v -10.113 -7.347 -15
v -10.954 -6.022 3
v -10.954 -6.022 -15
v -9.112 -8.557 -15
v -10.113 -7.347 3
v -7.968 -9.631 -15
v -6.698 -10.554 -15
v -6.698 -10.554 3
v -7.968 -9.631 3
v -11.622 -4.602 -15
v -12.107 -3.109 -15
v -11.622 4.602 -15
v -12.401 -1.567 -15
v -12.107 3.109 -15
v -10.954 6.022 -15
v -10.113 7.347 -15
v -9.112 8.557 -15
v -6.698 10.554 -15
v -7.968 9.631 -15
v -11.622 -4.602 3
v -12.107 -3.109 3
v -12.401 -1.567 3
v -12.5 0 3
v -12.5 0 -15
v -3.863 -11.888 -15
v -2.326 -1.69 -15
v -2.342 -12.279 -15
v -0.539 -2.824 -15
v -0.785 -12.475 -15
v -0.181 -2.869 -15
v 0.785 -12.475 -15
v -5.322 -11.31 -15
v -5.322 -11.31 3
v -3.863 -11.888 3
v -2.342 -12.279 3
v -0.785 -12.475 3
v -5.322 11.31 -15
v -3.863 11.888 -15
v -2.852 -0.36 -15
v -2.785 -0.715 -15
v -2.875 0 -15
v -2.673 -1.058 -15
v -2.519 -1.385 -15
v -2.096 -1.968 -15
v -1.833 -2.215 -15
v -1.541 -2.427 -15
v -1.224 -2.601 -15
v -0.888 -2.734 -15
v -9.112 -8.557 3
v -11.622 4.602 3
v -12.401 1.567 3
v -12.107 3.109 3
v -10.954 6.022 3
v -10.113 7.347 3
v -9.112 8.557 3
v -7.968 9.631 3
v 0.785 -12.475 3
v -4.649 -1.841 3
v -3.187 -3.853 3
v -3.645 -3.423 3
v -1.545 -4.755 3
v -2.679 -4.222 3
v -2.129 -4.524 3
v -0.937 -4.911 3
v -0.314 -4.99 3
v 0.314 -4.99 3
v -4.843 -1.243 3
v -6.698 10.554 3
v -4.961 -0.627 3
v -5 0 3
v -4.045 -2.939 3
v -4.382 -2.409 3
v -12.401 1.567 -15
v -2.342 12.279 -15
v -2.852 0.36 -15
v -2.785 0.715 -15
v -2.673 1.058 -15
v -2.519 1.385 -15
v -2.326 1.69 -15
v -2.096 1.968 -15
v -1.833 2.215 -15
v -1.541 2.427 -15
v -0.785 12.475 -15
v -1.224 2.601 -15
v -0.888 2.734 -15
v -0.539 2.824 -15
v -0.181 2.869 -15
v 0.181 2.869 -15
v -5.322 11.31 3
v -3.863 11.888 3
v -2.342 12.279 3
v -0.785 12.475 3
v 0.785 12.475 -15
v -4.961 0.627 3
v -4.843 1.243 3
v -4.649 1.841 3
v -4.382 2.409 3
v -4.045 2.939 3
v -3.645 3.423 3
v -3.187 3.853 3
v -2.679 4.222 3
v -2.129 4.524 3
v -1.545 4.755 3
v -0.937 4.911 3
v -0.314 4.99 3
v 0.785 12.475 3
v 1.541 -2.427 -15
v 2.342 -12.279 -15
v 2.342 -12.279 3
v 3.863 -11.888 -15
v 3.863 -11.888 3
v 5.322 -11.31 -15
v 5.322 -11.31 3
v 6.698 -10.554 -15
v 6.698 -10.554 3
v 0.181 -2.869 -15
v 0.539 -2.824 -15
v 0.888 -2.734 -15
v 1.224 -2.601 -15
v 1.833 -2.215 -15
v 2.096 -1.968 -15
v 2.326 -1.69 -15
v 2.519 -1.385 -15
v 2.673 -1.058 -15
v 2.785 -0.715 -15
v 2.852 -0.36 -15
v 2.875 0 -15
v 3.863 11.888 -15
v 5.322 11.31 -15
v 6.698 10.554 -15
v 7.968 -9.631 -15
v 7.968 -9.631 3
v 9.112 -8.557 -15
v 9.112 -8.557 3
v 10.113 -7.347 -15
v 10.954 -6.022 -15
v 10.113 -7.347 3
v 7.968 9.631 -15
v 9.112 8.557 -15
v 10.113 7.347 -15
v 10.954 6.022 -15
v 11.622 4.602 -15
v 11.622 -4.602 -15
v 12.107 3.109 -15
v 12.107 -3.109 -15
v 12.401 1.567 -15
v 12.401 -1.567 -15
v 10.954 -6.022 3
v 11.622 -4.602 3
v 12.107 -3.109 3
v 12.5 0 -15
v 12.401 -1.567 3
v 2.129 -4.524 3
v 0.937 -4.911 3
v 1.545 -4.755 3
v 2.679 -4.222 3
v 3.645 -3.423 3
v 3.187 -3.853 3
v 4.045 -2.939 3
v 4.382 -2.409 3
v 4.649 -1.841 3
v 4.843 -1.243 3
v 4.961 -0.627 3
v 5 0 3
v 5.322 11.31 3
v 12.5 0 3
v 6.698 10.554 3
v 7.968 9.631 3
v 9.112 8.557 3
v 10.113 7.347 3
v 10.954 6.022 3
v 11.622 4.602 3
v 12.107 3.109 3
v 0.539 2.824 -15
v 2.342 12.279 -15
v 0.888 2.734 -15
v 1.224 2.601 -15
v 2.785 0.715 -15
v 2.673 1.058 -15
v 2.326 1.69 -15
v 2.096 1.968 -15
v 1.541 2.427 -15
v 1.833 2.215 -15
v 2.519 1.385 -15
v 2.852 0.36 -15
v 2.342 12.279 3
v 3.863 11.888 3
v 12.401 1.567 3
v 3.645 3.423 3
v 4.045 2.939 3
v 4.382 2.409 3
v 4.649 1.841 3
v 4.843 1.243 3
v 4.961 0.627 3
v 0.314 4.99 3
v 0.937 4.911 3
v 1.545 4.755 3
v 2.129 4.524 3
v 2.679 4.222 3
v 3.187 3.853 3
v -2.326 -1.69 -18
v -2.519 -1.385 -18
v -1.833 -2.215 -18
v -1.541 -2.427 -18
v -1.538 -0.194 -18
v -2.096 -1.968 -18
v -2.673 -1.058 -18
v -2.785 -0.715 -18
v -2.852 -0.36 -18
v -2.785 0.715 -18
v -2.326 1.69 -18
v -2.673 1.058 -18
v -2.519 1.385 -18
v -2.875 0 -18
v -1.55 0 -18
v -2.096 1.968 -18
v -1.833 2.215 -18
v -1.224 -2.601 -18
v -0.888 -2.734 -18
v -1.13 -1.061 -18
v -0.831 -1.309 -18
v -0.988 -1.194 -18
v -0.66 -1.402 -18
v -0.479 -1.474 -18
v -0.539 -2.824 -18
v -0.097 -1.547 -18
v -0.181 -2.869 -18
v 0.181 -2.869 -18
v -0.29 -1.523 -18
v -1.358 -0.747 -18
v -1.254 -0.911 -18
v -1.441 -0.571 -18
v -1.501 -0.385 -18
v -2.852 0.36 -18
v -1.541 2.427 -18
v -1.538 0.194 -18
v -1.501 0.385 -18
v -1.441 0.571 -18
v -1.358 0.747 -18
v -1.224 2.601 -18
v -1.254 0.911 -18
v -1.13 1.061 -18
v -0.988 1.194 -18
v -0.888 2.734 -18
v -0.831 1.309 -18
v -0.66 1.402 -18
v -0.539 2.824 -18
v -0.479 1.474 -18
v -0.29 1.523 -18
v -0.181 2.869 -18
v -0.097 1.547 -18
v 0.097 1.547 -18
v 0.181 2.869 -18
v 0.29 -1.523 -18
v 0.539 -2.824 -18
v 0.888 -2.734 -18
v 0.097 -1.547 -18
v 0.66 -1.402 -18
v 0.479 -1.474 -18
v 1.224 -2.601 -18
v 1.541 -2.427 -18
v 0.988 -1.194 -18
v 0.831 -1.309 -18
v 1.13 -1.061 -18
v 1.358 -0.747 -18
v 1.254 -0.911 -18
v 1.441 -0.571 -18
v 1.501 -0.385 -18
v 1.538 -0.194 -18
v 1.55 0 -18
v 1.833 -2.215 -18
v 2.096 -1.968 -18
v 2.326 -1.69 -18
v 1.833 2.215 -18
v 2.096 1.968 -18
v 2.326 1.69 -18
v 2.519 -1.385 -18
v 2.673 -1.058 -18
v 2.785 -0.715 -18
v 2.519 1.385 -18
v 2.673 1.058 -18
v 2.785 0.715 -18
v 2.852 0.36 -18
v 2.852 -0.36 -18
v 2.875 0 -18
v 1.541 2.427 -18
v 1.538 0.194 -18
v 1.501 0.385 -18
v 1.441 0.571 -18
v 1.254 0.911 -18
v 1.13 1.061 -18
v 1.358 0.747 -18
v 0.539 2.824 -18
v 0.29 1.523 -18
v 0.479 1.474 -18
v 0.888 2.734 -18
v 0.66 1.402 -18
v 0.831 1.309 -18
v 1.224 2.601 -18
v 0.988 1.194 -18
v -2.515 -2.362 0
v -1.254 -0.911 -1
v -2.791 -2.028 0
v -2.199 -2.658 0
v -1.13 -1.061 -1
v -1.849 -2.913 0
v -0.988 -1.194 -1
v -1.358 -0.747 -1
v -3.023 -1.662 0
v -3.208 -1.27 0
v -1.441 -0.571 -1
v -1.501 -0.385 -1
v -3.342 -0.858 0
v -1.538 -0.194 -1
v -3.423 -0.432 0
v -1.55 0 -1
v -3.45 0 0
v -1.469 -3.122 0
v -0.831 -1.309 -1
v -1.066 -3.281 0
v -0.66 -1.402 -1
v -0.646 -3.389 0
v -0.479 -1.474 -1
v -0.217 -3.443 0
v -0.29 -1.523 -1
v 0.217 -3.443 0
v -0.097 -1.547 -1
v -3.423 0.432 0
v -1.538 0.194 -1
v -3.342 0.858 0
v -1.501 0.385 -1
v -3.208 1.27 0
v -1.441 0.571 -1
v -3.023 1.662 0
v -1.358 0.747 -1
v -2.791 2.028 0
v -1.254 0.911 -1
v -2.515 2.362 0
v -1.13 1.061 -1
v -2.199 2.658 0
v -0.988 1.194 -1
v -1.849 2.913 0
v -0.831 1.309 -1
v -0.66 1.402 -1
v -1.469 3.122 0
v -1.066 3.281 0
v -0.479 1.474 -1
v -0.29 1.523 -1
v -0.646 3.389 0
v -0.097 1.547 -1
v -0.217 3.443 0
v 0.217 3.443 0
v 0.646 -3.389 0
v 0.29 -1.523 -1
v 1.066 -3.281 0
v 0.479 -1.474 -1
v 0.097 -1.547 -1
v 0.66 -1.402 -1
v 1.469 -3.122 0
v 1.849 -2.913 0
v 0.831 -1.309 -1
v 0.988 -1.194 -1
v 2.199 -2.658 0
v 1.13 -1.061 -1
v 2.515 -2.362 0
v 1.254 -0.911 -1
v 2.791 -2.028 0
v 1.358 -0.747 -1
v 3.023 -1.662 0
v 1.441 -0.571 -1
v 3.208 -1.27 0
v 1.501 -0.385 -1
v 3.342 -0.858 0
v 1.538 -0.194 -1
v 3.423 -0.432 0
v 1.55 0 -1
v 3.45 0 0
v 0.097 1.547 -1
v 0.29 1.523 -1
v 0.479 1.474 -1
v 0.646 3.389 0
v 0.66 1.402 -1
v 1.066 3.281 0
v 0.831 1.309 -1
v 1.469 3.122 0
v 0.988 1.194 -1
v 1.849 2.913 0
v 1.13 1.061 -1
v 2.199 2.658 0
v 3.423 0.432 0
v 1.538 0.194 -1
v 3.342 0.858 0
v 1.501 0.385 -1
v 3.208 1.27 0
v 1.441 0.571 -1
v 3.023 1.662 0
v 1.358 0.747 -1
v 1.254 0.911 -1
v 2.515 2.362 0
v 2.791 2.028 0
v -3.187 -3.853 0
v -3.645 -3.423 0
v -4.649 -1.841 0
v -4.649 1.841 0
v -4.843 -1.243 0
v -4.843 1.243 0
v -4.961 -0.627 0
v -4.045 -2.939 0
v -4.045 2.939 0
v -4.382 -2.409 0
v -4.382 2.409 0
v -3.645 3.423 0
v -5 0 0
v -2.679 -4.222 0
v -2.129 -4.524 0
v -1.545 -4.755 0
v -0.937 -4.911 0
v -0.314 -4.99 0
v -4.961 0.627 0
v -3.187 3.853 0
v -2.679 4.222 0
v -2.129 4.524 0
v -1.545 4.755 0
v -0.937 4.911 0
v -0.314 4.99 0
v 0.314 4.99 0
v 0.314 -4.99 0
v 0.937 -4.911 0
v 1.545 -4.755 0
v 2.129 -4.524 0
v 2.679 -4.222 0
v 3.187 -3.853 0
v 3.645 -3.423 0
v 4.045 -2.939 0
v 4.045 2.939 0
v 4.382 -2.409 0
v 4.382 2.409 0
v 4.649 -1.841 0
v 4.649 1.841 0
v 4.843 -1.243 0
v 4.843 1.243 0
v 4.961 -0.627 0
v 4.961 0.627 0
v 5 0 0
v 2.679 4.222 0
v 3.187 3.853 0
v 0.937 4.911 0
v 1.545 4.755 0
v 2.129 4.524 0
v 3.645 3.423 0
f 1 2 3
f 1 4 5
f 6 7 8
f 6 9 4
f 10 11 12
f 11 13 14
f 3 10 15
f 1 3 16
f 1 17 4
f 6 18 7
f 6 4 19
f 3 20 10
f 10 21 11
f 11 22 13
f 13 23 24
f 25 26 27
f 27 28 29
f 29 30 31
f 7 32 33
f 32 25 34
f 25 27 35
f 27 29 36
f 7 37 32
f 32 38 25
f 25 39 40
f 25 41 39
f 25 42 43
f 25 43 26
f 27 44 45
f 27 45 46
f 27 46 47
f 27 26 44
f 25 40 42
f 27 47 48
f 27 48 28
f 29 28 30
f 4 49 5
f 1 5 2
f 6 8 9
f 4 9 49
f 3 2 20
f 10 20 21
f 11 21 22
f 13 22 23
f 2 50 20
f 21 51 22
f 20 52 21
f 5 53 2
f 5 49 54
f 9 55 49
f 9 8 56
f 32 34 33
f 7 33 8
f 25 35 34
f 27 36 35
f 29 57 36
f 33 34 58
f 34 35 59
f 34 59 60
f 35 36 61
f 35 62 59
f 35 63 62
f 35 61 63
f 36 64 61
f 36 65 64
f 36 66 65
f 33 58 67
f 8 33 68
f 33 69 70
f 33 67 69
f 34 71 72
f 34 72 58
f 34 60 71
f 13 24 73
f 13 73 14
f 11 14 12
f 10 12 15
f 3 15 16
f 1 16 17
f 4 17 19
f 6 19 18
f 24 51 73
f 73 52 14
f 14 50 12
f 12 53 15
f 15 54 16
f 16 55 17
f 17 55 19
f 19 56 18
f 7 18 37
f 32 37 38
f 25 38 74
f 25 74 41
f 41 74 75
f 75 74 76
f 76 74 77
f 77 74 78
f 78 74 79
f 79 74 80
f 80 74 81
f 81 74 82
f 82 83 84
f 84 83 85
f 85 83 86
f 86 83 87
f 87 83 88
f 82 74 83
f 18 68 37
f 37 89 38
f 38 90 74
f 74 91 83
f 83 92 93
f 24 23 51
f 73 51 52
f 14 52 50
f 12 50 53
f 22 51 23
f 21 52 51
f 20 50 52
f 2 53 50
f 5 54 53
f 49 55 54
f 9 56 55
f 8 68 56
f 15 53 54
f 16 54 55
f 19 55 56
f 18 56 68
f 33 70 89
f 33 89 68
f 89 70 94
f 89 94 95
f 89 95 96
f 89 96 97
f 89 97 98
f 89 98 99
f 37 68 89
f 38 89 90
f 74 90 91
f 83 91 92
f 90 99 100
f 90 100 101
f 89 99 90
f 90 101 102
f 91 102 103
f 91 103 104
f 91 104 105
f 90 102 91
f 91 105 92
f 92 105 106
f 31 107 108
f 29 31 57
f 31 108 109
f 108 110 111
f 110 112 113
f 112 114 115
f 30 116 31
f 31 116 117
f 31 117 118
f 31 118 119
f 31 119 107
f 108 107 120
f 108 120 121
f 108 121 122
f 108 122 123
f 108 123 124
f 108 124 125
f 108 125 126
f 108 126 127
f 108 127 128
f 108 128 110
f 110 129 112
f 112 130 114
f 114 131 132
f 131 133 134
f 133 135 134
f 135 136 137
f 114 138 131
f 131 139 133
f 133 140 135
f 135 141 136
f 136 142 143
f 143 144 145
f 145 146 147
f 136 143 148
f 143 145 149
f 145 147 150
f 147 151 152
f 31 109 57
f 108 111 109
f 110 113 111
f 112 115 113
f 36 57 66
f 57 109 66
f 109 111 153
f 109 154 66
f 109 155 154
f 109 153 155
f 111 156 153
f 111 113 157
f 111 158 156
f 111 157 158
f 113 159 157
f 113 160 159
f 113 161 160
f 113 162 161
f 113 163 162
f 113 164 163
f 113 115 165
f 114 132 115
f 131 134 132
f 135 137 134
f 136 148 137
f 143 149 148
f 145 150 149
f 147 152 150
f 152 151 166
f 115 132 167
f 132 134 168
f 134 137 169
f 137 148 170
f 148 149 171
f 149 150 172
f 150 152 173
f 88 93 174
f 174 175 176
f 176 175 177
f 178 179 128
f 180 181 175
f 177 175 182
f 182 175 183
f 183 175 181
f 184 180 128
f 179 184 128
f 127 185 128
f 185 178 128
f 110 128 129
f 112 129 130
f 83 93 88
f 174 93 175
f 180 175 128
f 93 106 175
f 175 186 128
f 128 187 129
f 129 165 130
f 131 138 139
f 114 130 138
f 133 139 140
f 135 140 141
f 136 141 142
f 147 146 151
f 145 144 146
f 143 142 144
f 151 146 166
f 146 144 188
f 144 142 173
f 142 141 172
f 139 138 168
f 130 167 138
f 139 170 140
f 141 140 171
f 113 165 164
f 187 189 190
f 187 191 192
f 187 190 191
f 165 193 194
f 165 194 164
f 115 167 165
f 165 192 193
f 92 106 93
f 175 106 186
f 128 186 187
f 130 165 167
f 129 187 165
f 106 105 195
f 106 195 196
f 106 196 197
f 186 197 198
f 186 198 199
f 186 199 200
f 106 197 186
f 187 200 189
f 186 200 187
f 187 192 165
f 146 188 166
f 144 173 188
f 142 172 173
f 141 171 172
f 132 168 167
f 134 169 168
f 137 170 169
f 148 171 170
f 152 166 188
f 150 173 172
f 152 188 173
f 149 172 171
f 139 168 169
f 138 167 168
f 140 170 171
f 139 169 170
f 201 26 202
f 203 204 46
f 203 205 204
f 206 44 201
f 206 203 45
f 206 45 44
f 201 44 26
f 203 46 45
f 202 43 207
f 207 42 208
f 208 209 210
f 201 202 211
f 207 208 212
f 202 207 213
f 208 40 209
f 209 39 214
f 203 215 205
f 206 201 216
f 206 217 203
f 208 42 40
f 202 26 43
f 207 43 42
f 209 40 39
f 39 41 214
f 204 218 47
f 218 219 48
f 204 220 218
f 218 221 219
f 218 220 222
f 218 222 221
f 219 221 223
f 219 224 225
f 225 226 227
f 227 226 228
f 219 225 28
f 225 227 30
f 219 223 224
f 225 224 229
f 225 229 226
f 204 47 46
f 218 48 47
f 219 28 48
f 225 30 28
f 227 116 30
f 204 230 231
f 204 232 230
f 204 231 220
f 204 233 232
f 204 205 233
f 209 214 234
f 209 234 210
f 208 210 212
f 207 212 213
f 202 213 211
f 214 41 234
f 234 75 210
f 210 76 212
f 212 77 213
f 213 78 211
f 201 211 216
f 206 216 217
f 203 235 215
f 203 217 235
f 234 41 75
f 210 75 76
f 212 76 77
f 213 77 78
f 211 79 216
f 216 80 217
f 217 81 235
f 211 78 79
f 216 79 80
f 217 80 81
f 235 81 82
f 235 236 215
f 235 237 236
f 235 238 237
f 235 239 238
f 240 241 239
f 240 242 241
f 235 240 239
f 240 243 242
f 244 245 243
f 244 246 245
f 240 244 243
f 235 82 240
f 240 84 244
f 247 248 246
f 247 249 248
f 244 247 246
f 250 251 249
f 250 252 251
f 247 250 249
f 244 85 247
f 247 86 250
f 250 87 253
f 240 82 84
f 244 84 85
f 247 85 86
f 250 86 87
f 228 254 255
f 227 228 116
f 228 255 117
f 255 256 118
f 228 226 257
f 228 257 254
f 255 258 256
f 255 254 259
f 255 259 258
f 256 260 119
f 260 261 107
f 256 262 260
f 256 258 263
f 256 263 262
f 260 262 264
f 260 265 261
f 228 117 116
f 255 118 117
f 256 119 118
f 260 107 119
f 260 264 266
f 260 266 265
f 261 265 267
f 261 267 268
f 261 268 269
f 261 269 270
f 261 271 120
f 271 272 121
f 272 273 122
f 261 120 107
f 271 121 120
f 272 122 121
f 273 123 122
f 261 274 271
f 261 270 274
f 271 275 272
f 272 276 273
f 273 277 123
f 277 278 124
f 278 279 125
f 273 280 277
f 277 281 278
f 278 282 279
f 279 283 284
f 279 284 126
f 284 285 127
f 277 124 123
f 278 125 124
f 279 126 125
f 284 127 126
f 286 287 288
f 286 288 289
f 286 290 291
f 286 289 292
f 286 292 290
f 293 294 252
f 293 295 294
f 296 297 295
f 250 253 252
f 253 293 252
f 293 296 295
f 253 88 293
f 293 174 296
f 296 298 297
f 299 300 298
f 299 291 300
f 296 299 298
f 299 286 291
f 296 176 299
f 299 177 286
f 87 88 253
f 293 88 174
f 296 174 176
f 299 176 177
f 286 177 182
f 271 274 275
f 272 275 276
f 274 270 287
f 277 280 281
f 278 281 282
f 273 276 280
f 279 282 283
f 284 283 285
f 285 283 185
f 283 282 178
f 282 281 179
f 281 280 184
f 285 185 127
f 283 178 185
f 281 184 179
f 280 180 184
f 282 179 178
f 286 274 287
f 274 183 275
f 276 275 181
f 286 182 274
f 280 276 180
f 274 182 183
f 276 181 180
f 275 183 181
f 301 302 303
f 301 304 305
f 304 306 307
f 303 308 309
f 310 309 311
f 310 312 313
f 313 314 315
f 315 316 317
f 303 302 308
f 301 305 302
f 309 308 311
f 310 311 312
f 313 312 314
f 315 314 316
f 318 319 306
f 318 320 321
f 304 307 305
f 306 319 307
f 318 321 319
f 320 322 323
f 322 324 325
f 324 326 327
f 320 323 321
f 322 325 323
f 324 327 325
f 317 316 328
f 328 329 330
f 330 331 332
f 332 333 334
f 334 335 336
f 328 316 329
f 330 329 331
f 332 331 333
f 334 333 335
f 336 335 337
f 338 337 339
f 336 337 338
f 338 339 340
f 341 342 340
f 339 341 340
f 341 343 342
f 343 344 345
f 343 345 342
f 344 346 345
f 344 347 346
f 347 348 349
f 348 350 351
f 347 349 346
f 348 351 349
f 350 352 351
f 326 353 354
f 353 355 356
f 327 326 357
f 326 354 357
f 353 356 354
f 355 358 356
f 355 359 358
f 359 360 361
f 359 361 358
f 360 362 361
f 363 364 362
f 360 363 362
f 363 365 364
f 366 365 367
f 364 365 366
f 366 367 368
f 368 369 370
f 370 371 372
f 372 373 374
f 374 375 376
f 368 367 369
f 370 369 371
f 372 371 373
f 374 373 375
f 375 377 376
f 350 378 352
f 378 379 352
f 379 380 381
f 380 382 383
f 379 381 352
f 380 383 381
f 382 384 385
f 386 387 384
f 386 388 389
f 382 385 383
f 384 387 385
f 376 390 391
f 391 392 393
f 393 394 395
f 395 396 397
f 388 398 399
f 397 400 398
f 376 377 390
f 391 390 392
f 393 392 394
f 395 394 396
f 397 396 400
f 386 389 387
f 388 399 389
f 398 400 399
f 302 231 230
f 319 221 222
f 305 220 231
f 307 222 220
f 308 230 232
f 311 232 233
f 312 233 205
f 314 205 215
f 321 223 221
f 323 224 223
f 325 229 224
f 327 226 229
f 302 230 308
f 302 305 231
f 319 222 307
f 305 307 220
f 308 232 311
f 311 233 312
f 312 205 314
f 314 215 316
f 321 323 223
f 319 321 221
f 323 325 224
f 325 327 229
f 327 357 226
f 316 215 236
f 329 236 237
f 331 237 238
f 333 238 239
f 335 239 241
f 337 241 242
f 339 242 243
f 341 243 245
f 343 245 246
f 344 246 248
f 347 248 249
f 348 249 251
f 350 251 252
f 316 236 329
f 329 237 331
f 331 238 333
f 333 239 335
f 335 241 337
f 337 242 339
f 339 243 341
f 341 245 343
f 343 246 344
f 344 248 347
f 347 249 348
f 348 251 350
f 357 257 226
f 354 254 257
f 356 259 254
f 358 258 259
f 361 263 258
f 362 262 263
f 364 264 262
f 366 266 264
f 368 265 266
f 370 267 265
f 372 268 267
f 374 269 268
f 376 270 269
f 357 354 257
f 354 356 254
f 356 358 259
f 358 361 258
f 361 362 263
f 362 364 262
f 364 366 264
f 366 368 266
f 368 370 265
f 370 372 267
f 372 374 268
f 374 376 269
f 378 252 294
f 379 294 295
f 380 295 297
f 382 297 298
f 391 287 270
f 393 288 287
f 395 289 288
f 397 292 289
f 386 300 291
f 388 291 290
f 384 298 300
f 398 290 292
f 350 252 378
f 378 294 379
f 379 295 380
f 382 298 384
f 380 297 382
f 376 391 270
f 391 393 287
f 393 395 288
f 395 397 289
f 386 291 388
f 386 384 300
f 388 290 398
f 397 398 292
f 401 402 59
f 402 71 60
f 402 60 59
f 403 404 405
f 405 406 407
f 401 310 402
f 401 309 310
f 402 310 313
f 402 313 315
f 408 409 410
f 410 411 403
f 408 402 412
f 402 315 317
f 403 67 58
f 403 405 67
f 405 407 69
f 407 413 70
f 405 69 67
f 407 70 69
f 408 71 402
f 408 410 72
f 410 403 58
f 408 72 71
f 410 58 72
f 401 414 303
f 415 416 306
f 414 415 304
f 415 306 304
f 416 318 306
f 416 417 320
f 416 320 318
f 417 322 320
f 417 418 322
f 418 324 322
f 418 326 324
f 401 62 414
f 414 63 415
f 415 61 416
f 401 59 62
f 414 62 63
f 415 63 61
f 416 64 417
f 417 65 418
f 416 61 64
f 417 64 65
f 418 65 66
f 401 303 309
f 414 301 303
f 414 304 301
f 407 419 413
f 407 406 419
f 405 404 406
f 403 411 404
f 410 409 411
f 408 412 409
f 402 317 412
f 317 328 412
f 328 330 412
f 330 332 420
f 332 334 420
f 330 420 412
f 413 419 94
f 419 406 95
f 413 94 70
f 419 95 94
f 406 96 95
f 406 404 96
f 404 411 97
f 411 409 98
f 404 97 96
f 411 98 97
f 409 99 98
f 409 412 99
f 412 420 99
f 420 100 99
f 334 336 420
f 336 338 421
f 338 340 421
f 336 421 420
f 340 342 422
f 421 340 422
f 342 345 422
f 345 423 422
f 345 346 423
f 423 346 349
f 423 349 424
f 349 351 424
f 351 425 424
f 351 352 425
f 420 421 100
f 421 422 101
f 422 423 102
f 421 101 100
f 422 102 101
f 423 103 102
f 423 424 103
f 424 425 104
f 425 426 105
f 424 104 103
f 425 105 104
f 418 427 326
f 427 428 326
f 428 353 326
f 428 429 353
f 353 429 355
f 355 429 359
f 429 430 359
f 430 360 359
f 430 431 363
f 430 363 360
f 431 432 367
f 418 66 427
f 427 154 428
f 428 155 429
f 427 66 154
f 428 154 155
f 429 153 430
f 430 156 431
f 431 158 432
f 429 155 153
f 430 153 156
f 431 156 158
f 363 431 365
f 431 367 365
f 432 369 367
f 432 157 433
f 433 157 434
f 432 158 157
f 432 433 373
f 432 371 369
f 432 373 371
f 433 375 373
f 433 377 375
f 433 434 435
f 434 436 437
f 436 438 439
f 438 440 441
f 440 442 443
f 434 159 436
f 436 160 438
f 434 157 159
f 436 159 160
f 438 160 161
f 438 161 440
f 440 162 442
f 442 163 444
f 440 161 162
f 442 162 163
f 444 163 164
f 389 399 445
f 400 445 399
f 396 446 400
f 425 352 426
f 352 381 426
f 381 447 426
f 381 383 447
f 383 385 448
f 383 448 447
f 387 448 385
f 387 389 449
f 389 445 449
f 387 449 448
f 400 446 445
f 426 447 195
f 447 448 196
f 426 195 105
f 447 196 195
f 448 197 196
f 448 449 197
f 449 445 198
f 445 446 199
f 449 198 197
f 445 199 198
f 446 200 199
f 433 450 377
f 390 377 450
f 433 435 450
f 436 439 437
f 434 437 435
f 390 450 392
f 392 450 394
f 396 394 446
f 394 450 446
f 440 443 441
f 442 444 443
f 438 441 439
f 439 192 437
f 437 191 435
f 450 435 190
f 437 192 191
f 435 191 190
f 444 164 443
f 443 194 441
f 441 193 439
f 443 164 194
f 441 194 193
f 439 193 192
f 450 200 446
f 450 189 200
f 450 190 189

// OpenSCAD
$fn = 50;

difference() {
	union() {
		translate(v = [0, 0, -15.0]) {
			cylinder(h = 18, r = 12.5);
		}
		#translate(v = [0, 0, -18.0]) {
			cylinder(h = 18, r = 2.875);
		}
	}
	union() {
		translate(v = [0, 0, 0]) {
			rotate(a = [0, 0, 0]) {
				difference() {
					union() {
						translate(v = [0, 0, -18.0]) {
							cylinder(h = 18, r = 1.25);
						}
						translate(v = [0, 0, -1.0]) {
							cylinder(h = 1.0, r1 = 1.55, r2 = 3.45);
						}
						translate(v = [0, 0, -18.0]) {
							cylinder(h = 18, r = 1.55);
						}
						translate(v = [0, 0, -18.0]) {
							cylinder(h = 18, r = 1.25);
						}
					}
					union();
				}
			}
		}
		#cylinder(h = 3, r = 5.0);
	}
}
